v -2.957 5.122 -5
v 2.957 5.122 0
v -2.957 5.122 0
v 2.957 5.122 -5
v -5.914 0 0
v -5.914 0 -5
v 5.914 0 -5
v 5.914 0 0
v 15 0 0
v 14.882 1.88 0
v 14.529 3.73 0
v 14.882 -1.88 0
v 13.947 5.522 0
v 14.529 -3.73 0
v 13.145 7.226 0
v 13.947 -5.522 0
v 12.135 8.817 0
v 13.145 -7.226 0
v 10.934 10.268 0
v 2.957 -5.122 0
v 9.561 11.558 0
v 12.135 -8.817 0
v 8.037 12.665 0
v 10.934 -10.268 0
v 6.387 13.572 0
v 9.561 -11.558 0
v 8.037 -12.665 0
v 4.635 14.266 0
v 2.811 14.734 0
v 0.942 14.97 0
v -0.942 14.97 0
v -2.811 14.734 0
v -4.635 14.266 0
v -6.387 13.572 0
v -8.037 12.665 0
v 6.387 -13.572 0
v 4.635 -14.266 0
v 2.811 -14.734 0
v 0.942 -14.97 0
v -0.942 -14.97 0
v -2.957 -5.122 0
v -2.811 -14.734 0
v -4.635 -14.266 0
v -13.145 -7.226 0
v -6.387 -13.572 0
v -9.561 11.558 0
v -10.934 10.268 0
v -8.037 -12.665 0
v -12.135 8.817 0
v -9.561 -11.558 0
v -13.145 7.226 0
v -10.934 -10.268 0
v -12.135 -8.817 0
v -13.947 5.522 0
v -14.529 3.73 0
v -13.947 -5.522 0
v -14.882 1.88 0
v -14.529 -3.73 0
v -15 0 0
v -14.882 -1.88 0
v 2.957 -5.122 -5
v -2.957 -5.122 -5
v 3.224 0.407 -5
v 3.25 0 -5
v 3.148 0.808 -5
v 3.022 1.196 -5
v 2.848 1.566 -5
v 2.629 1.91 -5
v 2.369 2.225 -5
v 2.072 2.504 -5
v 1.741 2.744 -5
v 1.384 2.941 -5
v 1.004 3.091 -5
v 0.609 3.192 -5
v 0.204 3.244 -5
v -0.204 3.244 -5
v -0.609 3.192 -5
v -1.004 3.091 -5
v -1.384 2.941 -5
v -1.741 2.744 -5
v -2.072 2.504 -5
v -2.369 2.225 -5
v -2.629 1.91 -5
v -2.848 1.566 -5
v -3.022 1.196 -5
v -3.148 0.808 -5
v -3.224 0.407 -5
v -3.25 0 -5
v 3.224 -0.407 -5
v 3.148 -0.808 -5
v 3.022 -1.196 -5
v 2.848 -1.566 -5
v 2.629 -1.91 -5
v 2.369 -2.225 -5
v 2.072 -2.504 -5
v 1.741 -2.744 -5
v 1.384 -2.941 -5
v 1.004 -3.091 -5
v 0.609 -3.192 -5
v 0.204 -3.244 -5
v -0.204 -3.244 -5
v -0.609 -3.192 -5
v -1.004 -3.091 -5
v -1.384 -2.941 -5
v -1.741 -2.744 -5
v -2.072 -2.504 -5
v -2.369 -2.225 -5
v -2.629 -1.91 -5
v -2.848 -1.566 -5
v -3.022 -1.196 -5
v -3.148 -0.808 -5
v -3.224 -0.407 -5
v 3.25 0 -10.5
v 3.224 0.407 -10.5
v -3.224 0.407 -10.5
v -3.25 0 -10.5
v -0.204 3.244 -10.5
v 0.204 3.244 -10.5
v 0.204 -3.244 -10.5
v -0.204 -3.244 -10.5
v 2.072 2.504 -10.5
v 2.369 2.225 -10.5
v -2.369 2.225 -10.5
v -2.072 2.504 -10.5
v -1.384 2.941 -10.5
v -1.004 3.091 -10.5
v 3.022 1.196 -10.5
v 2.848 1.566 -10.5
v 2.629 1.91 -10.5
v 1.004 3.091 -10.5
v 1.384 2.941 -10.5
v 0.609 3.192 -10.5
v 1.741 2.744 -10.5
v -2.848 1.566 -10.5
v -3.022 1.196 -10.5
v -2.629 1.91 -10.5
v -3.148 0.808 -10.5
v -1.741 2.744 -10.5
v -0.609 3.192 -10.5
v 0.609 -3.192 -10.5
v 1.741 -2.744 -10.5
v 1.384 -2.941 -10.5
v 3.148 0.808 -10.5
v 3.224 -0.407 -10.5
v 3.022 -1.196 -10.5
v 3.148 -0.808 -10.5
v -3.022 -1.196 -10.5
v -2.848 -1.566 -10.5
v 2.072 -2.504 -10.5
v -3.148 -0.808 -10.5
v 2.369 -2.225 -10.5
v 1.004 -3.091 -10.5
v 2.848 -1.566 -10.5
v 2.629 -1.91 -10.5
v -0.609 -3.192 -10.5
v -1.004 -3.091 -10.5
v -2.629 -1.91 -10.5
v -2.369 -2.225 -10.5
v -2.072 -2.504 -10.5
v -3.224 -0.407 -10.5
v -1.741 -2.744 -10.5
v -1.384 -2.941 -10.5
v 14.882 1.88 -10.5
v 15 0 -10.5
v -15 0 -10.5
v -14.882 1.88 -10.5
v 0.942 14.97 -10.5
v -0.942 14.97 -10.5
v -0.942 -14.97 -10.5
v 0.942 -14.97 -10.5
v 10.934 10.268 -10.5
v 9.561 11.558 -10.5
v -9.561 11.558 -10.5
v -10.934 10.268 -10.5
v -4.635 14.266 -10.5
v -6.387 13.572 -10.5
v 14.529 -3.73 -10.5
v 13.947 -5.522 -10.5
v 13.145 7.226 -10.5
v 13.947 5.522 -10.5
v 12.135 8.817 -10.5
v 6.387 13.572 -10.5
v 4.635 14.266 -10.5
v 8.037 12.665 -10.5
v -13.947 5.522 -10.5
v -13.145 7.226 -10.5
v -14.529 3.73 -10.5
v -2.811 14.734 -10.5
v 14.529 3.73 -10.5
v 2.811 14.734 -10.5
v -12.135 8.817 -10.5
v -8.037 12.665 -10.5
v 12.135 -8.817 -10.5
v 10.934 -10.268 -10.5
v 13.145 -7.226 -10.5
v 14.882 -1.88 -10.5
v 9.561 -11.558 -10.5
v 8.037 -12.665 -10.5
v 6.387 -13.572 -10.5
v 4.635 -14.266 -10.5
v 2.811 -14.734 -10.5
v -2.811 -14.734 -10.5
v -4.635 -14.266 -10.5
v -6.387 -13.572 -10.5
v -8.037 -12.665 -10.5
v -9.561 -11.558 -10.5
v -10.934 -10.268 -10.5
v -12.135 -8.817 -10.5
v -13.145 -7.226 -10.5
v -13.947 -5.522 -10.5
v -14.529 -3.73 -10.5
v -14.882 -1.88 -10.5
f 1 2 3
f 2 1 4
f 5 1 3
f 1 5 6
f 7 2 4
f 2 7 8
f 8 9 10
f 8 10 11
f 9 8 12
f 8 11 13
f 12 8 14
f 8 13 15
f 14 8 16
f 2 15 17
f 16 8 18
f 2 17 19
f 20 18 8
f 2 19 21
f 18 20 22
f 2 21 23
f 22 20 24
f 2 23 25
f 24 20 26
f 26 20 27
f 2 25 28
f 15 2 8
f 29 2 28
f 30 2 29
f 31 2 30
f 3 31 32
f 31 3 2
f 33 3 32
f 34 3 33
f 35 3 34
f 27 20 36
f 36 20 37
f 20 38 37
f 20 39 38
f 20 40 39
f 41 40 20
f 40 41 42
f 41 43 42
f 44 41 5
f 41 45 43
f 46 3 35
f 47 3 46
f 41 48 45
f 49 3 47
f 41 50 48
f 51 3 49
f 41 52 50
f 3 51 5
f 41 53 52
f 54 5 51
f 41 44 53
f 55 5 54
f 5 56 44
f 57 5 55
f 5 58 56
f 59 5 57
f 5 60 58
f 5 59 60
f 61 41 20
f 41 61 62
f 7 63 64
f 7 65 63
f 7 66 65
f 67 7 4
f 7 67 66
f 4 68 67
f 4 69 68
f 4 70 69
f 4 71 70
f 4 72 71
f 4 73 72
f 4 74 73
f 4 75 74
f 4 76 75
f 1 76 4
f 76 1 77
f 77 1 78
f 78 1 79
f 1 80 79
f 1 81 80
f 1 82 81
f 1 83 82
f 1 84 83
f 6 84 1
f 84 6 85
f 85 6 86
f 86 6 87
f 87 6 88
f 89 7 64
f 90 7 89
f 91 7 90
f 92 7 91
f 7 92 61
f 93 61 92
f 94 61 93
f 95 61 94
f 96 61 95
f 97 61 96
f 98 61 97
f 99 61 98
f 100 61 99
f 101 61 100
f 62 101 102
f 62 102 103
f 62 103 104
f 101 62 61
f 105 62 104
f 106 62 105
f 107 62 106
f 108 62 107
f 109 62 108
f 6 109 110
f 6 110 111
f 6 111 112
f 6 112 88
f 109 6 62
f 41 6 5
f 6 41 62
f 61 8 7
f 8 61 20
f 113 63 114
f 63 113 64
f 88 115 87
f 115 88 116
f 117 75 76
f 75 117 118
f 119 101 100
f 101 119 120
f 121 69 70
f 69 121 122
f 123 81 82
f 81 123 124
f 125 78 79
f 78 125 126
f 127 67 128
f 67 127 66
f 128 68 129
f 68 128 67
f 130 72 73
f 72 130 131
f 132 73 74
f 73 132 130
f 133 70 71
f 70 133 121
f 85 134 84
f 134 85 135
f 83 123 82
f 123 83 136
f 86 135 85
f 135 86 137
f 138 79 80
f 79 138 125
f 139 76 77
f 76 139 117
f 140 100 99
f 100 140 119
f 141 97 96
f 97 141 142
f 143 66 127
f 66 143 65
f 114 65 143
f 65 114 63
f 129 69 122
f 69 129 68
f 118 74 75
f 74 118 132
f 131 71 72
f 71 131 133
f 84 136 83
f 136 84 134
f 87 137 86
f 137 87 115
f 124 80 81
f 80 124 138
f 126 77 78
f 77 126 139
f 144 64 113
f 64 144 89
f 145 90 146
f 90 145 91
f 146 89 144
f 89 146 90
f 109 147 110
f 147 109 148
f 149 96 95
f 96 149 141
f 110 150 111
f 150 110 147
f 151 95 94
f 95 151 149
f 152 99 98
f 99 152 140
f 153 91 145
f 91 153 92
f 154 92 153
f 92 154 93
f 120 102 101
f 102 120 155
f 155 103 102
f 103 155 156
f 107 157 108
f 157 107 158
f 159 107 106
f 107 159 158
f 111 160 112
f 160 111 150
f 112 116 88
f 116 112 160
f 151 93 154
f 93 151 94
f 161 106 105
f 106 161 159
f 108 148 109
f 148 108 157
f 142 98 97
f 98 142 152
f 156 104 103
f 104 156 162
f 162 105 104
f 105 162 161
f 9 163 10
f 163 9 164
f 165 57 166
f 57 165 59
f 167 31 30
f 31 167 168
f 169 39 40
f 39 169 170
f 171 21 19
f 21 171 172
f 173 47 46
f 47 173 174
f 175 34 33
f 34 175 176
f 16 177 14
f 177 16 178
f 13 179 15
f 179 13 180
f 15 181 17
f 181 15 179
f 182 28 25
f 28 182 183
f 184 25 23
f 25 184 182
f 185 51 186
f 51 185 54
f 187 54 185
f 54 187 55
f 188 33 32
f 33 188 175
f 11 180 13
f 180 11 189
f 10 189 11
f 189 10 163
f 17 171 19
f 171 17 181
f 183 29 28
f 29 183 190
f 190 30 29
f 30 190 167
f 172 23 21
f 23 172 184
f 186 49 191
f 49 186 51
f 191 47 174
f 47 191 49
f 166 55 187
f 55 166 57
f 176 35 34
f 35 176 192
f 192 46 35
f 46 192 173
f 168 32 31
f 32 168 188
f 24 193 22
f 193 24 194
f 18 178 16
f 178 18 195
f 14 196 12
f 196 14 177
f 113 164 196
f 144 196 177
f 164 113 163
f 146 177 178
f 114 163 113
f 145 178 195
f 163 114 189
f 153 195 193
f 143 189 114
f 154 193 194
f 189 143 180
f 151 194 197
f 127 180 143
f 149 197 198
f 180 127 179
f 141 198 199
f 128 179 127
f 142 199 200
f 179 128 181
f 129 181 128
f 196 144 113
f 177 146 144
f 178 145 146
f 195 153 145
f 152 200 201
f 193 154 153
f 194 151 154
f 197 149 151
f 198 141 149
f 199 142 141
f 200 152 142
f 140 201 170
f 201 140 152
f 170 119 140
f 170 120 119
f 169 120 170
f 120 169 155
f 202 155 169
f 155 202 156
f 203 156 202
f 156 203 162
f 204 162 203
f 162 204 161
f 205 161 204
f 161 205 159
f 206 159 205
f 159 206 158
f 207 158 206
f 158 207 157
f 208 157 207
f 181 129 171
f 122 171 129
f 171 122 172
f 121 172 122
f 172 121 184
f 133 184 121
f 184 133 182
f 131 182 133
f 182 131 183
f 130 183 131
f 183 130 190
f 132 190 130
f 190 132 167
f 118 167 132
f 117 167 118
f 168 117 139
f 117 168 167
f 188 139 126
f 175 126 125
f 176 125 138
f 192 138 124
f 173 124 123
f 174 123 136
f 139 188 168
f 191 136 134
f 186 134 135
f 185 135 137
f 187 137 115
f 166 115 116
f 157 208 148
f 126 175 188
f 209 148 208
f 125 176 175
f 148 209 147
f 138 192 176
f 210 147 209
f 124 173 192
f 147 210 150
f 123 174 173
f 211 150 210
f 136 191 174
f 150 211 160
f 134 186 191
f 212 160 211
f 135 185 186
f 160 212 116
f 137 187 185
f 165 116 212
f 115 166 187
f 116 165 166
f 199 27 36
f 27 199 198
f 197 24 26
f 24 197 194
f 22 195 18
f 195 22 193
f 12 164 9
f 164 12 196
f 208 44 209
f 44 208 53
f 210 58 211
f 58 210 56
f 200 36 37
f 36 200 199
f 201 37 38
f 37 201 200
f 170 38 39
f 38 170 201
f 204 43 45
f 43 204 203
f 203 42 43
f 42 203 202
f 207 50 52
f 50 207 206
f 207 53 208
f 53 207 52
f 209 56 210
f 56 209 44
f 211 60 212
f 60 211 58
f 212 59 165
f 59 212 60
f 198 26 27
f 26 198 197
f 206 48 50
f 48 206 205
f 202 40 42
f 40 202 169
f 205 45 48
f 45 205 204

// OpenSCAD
$fn = 50;


difference() {
	union() {
		translate(v = [0, 0, -10.5000000000]) {
			cylinder(h = 10.5000000000, r = 15.0000000000);
		}
	}
	union() {
		translate(v = [0, 0, 0]) {
			rotate(a = [0, 0, 0]) {
				difference() {
					union() {
						translate(v = [0, 0, -5]) {
							#linear_extrude(height = 5) {
								polygon(points = [[5.9142500000, 0.0000000000], [2.9571250000, 5.1218907443], [-2.9571250000, 5.1218907443], [-5.9142500000, 0.0000000000], [-2.9571250000, -5.1218907443], [2.9571250000, -5.1218907443]]);
							}
						}
					}
					union();
				}
			}
		}
		#translate(v = [0, 0, -100.0000000000]) {
			cylinder(h = 200, r = 3.2500000000);
		}
	}
}
